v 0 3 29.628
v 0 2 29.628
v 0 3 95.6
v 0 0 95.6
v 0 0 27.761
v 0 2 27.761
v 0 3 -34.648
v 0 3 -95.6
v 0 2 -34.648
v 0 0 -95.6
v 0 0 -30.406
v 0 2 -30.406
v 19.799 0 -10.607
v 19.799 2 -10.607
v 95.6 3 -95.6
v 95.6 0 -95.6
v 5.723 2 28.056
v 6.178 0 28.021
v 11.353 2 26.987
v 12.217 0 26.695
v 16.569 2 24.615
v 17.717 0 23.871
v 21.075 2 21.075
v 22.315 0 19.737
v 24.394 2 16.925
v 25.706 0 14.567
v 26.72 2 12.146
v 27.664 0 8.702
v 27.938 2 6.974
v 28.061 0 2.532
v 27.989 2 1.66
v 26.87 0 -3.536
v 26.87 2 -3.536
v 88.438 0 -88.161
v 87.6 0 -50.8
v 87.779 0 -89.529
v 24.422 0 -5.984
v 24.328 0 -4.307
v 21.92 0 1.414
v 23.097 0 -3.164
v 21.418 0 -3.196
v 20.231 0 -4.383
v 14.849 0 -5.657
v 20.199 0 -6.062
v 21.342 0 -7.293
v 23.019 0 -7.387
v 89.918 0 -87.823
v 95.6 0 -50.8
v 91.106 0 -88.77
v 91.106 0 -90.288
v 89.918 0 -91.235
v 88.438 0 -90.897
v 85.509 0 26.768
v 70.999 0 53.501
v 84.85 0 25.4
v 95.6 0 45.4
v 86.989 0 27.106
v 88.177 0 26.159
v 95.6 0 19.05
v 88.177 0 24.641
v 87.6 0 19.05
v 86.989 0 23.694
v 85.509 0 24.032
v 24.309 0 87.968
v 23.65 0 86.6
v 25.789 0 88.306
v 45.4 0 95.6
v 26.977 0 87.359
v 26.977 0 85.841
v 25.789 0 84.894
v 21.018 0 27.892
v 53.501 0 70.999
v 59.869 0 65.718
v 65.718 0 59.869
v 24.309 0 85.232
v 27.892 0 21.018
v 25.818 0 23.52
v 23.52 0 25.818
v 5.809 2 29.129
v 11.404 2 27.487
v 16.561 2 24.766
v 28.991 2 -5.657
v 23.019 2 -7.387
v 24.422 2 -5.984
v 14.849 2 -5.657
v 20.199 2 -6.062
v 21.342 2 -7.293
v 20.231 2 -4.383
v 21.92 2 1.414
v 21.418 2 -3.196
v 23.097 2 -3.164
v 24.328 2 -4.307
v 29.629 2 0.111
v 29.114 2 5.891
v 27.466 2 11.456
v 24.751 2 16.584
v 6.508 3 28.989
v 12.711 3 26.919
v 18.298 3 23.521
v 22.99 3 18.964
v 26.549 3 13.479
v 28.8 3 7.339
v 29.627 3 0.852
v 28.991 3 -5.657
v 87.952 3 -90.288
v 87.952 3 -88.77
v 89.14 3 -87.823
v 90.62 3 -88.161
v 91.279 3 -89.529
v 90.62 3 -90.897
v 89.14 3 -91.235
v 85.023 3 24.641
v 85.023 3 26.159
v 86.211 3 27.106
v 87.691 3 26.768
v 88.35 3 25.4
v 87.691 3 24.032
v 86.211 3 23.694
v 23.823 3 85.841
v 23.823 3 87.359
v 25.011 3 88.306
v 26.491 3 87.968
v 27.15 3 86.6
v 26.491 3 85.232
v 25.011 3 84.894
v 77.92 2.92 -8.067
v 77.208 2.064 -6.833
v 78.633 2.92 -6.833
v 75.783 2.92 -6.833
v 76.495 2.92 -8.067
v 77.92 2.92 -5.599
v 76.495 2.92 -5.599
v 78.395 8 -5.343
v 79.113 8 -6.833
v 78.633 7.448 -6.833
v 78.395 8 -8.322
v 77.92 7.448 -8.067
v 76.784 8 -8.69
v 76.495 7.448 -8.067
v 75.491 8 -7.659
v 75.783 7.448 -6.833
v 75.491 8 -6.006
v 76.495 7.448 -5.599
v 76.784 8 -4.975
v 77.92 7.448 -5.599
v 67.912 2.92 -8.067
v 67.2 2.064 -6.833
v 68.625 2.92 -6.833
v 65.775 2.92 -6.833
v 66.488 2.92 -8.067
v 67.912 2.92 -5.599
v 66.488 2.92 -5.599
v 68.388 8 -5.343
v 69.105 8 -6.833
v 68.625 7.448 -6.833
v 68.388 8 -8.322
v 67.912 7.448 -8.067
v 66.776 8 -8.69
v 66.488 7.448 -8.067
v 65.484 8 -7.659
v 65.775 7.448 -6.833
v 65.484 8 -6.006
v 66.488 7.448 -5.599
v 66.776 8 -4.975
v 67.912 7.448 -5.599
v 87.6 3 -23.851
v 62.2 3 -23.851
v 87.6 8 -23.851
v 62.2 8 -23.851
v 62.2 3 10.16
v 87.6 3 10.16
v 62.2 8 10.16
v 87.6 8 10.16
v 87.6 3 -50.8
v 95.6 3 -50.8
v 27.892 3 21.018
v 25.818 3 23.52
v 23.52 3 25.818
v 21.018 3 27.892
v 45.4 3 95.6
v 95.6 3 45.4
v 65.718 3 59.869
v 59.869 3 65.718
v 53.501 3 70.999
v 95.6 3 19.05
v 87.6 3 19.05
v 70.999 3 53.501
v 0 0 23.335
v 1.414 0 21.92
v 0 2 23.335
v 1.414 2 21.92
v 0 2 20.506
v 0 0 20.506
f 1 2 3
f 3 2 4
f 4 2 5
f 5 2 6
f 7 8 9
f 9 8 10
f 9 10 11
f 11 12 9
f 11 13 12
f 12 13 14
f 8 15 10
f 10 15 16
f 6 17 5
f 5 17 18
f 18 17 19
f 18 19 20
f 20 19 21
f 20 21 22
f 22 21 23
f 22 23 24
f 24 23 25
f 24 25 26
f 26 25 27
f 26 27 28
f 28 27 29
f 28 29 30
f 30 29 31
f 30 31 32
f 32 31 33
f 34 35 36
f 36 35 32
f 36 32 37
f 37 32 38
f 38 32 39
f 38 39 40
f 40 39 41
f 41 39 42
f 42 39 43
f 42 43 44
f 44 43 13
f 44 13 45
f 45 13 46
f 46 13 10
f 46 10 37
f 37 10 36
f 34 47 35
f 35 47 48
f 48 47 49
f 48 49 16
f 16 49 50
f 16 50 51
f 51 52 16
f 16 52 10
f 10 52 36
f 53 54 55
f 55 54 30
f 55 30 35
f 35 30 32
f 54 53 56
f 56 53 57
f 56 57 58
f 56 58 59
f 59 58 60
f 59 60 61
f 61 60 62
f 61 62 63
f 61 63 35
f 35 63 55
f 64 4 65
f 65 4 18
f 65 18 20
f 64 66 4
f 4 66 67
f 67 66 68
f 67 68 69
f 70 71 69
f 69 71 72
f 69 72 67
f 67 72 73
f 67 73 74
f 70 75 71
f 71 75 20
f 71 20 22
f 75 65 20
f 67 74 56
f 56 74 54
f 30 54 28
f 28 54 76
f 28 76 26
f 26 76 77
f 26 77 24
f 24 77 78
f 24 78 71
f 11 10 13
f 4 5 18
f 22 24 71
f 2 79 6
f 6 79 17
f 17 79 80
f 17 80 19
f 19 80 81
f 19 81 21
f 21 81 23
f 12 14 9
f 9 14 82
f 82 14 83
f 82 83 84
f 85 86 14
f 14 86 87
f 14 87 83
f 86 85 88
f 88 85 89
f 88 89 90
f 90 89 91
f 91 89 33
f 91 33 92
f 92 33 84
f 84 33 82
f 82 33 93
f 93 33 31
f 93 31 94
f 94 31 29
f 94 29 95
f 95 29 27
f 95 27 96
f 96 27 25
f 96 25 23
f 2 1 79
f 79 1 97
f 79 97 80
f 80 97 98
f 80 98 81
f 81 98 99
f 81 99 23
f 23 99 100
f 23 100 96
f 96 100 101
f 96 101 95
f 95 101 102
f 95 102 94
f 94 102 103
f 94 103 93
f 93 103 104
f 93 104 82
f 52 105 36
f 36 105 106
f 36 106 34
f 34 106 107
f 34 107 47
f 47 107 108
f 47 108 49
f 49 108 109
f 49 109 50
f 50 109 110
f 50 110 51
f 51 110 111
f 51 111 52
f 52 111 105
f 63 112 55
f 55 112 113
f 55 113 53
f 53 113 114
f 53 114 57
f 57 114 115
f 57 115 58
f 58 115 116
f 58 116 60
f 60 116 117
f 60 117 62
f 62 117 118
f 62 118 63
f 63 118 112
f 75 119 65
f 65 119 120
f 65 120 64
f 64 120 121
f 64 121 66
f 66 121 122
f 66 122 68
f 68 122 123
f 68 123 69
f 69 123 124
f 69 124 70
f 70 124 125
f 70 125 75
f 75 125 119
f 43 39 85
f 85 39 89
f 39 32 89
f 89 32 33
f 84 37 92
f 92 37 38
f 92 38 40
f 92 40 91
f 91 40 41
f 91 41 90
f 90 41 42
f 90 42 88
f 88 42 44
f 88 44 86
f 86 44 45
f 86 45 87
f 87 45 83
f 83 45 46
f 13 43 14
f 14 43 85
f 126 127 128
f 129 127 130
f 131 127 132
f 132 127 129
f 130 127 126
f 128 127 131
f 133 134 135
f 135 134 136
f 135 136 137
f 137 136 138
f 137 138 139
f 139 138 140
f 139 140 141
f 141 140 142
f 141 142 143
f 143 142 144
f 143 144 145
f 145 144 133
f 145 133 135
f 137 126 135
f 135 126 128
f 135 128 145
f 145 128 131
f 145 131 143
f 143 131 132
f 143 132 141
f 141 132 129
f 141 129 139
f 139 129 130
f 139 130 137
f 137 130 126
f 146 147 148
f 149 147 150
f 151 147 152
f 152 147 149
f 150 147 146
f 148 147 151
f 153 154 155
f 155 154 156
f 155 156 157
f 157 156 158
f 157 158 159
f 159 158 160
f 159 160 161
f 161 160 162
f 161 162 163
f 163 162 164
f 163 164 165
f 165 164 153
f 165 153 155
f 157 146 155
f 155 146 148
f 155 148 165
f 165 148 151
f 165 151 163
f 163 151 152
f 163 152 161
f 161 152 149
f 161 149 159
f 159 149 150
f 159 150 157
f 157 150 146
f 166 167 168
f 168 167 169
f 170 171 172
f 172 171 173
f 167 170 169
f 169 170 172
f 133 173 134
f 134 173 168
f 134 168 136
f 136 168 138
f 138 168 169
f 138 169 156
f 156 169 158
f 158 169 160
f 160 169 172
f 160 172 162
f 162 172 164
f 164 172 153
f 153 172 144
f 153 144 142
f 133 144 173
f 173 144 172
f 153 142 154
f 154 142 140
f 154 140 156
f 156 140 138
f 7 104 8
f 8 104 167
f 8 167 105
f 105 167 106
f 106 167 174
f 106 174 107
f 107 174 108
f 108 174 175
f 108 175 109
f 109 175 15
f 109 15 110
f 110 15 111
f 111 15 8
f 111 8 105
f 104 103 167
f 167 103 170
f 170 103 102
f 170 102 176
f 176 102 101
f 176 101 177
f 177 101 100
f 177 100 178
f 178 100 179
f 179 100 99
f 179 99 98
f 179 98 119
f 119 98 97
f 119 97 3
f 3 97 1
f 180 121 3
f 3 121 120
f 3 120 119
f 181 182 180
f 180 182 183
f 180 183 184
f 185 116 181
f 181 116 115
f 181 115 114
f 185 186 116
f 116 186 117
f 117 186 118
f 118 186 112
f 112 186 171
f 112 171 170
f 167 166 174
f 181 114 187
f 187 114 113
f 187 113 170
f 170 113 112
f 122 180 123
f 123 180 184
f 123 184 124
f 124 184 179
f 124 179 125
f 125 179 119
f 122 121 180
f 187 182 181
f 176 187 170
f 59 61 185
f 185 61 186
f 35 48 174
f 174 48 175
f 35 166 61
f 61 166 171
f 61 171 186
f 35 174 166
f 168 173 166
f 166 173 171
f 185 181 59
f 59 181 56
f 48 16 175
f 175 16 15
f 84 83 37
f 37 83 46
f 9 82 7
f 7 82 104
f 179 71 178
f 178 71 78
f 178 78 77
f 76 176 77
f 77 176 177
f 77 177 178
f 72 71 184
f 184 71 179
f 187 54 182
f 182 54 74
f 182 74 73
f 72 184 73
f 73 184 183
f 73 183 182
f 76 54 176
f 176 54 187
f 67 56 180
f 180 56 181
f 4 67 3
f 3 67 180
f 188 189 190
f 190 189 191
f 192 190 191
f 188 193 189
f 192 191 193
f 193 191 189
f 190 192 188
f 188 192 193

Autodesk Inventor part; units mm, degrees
ref_plane "YZ Plane" through (0, 0, 0) normal (1, 0, 0) x (0, 1, 0)
ref_plane "XZ Plane" through (0, 0, 0) normal (0, 1, 0) x (-1, 0, 0)
sketch "Sketch1" plane through (0, 0, 0) normal (0, 1, 0) x (-1, 0, 0)
  line L0 (101.6, -101.6) -> (-101.6, -101.6)
  line L1 (-101.6, -101.6) -> (-101.6, 101.6)
  line L2 (-101.6, 101.6) -> (101.6, 101.6)
  line L3 (101.6, 101.6) -> (101.6, -101.6)
  line L4 (96.6, -96.6) -> (-96.6, -96.6)
  line L5 (-96.6, -96.6) -> (-96.6, 96.6)
  line L6 (-96.6, 96.6) -> (96.6, 96.6)
  line L7 (96.6, 96.6) -> (96.6, -96.6)
  line L8 (101.6, 101.6) -> (-40.4, 101.6)
  circle A0 centre (0, 0) radius 88.9
  line L9 (-40.4, 101.6) -> (-101.6, 40.4)
  line L10 (-45.4, 101.6) -> (-101.6, 45.4)
  line L11 (96.6, 96.6) -> (96.6, 101.6)
  line L12 (-45.4, 101.6) -> (-35.4, 101.6)
  line L13 (-35.4, 101.6) -> (-35.4, 96.6)
  line L14 (-35.4, 96.6) -> (-45.4, 96.6)
  line L15 (-45.4, 96.6) -> (-45.4, 101.6)
  line L16 (-101.6, 39.4) -> (-39.4, 101.6)
  line L17 (95.6, -95.6) -> (-95.6, -95.6)
  line L18 (-95.6, -95.6) -> (-95.6, 95.6)
  line L19 (-95.6, 95.6) -> (95.6, 95.6)
  line L20 (95.6, 95.6) -> (95.6, -95.6)
  point P0 (96.6, 51.2168)
  point P1 (101.6, 40.4)
  point P2 (101.6, -40.4)
  point P3 (96.6, -51.2168)
  point P4 (-96.6, 45.4)
  point P5 (-45.4, 96.6)
  point P6 (-45.4, 95.6)
  point P7 (-95.6, 45.4)
  dimension "d0" = 203.2
  dimension "d1" = 203.2
  dimension "d2" = 101.6
  dimension "d3" = 101.6
  dimension "d4" = 5
  dimension "d5" = 5
  dimension "d6" = 5
  dimension "d7" = 5
  dimension "d8" = 142
  dimension "d9" = 61.2
  dimension "d10" = 177.8
  dimension "d11" = 5
  dimension "d12" = 5
  dimension "d13" = 10
  dimension "d14" = 1
  dimension "d15" = 1
  dimension "d16" = 1
  dimension "d17" = 1
  dimension "d18" = 1
extrude "Extrusion1" add sketch "Sketch1" along normal blind 3 contours L16 L19 L20 L17 L18 | A0
sketch "Sketch2" plane through (0, 3, 0) normal (0, 1, 0) x (1, 0, 0)
  circle A0 centre (0, 0) radius 34.925
  circle A1 centre (0, 0) radius 88.9
  line L0 (0, 0) -> (53.5014, -70.9987)
  line L1 (0, 0) -> (70.9987, -53.5014)
  line L2 (45.4, -95.6) -> (95.6, -45.4) projected
  line L3 (70.5, -70.5) -> (0, 0)
  point P0 (21.0184, -27.8923)
  point P1 (27.8923, -21.0184)
  dimension "d21" = 69.85
  dimension "d22" = 177.8
  dimension "d23" = 8
  dimension "d24" = 8
extrude "Extrusion2" cut sketch "Sketch2" against normal blind 5 contours A0 L3 A1 L0 | L1 A1 L3 A0
sketch "Sketch3" plane through (0, 3, 0) normal (0, 1, 0) x (1, 0, 0)
  circle A0 centre (0, 0) radius 2.5
  line L0 (11.3314, 2.139) -> (-2.139, -11.3314)
  line L1 (0, 0) -> (-5.6569, 5.6569)
  line L2 (-5.6569, -14.8492) -> (-26.163, 5.6569)
  line L3 (-5.6569, 26.163) -> (14.8492, 5.6569)
  circle A1 centre (-5.6569, 5.6569) radius 14
  line L4 (-26.163, 5.6569) -> (-5.6569, 26.163)
  line L5 (14.8492, 5.6569) -> (-5.6569, -14.8492)
  line L6 (-40.3051, 5.6569) -> (-5.6569, 40.3051)
  line L7 (-5.6569, 40.3051) -> (28.9914, 5.6569)
  line L8 (28.9914, 5.6569) -> (-5.6569, -28.9914)
  line L9 (-5.6569, -28.9914) -> (-40.3051, 5.6569)
  line L10 (-22.6451, 9.1747) -> (-9.1747, 22.6451)
  line L11 (-9.1747, 22.6451) -> (-12.7668, 26.2372)
  line L12 (-12.7668, 26.2372) -> (-26.2372, 12.7668)
  line L13 (-26.2372, 12.7668) -> (-22.6451, 9.1747)
  line L14 (-36.0624, 5.6569) -> (-5.6569, 36.0624)
  line L15 (-5.6569, 36.0624) -> (26.8701, 3.5355)
  line L16 (26.8701, 3.5355) -> (-3.5355, -26.8701)
  line L17 (-3.5355, -26.8701) -> (-36.0624, 5.6569)
  arc A2 (-5.6569, -28.9914) -> (28.9914, 5.6569) centre (0.4206, -0.4206) ccw
  dimension "d27" = 8
  dimension "d28" = 28
  dimension "d29" = 29
  dimension "d30" = 29
  dimension "d31" = 14.5
  dimension "d32" = 10
  dimension "d33" = 10
  dimension "d34" = 10
  dimension "d35" = 10
  dimension "d36" = 5.08
  dimension "d37" = 9.525
  dimension "d38" = 9.525
  dimension "d39" = 3
  dimension "d40" = 3
  dimension "d41" = 0
  dimension "d42" = 3
  dimension "d51" = 29.21
extrude "Extrusion3" cut sketch "Sketch3" against normal blind 1 contours A0 | L0 L5 L2 L4 L3 | L4 L13 L12 L11 | A1 | L6 L7 L8 L15 L14 L17 L9 | L8 A2 | L17 L14 L15 L8
sketch "Sketch4" plane through (0, 2, 0) normal (0, 1, 0) x (1, 0, 0)
  line L0 (-36.0624, 5.6569) -> (-5.6569, 36.0624)
  line L1 (-5.6569, 36.0624) -> (26.8701, 3.5355)
  line L2 (26.8701, 3.5355) -> (-3.5355, -26.8701)
  line L3 (-3.5355, -26.8701) -> (-36.0624, 5.6569)
  line L4 (-5.6569, 40.3051) -> (28.9914, 5.6569) projected
  line L5 (-40.3051, 5.6569) -> (-5.6569, 40.3051) projected
  line L6 (-5.6569, -28.9914) -> (-40.3051, 5.6569) projected
  line L7 (28.9914, 5.6569) -> (-5.6569, -28.9914) projected
  arc A0 (-3.5355, -26.8701) -> (26.8701, 3.5355) centre (4.0877, -4.0877) ccw
  point P0 (0, 0)
  dimension "d45" = 3
  dimension "d46" = 3
  dimension "d47" = 3
  dimension "d48" = 0
extrude "Extrusion4" cut sketch "Sketch4" against normal blind 5 contours L0 L1 L2 L3 | L2 A0
sketch "Sketch6" plane through (0, 3, 0) normal (0, 1, 0) x (1, 0, 0)
  line L0 (95.6, 95.6) -> (-95.6, 95.6) projected
  line L1 (95.6, 95.6) -> (87.6, 95.6)
  line L2 (87.6, 95.6) -> (87.6, -46.4)
  line L3 (87.6, -46.4) -> (95.6, -46.4)
  line L4 (95.6, -46.4) -> (95.6, 95.6)
  line L5 (95.6, -45.4) -> (95.6, 95.6) projected
  line L6 (87.6, -19.05) -> (95.6, -19.05)
  line L7 (95.6, -19.05) -> (95.6, 50.8)
  line L8 (95.6, 50.8) -> (87.6, 50.8)
  line L9 (87.6, 50.8) -> (87.6, -19.05)
  line L10 (0, 0) -> (95.6, 0)
  point P0 (95.6, -19.05)
  dimension "d58" = 8
  dimension "d59" = 142
  dimension "d62" = 50.8
  dimension "d63" = 19.05
extrude "Extrusion6" cut sketch "Sketch6" against normal blind 25.4 contours L4 L10 L2 L8 | L4 L6 L2 L10
sketch "Sketch7" plane through (0, 3, 0) normal (0, 1, 0) x (1, 0, 0)
  line L0 (-95.6, 95.6) -> (-95.6, -95.6) projected
  line L1 (-95.6, -95.6) -> (45.4, -95.6) projected
  line L2 (95.6, 50.8) -> (87.6, 50.8) projected
  line L3 (87.6, 50.8) -> (62.2, 50.8)
  line L4 (87.6, -19.05) -> (87.6, 50.8)
  line L5 (87.6, -19.05) -> (87.6, 50.8) projected
  line L6 (87.6, 50.8) -> (95.6, 50.8) projected
  line L7 (87.6, 50.8) -> (62.2, 50.8)
  line L8 (62.2, 50.8) -> (62.2, -10.16)
  line L9 (62.2, -10.16) -> (87.6, -10.16)
  line L10 (87.6, -10.16) -> (87.6, 50.8)
  line L11 (62.2, 23.8506) -> (87.6, 23.8506)
  point P0 (0, 0)
  dimension "d72" = 60.96
  dimension "d90" = 34.0106
extrude "Extrusion7" add sketch "Sketch7" along normal blind 5 contours L4 L9 L8 L11
sketch "Sketch8" plane through (0, 8, 0) normal (0, 1, 0) x (1, 0, 0)
  line L0 (62.2, -10.16) -> (87.6, -10.16) projected
  line L1 (62.2, -10.16) -> (87.6, -10.16)
  line L2 (87.6, -10.16) -> (87.6, 6.8326)
  line L3 (87.6, 50.8) -> (87.6, -19.05) projected
  line L4 (87.6, 6.8326) -> (62.2, 6.8326)
  circle A0 centre (77.2076, 6.8326) radius 1.5
  circle A1 centre (67.2, 6.8326) radius 1.5
  line L5 (62.2, 23.8506) -> (62.2, -10.16) projected
  point P0 (0, 0)
  dimension "d78" = 16.9926
  dimension "d79" = 3
  dimension "d80" = 3
  dimension "d139" = 5
  dimension "d140" = 10.0076
hole "Hole1" at (77.2076, 8, -6.8326) at (67.2, 8, -6.8326) direction (0, -1, 0) diameter 2.85 depth 5.08 tip angle 118 countersink diameter 3.81 countersink angle 82 thread size "M3.5x0.6" class "6H" standard "ANSI Metric M Profile"
sketch "Sketch9" plane through (0, 2, 0) normal (0, 1, 0) x (1, 0, 0)
  point P0 (0, 0)
sketch "Sketch10" plane through (0, 2, 0) normal (0, 1, 0) x (1, 0, 0)
  circle A0 centre (6.7129, 18.0166) radius 2
  circle A1 centre (-18.0312, -6.7275) radius 2
  circle A2 centre (-18.0312, -6.7275) radius 2
  circle A3 centre (-5.6569, 5.6469) radius 14
  circle A4 centre (0, -0.01) radius 2.5
  circle A5 centre (22.2964, 5.2615) radius 2.2448
  circle A6 centre (-5.2761, -22.3111) radius 2.3104
  circle A7 centre (-33.9469, 6.3598) radius 2.2008
  circle A8 centre (-6.3744, 33.9323) radius 2.3894
  line L0 (-5.6569, 40.3051) -> (28.9914, 5.6569) projected
  line L1 (-5.6569, 40.3051) -> (1.4142, 33.234)
  line L2 (-5.6569, 26.163) -> (1.4142, 33.234)
  line L3 (-5.6569, 26.163) -> (-12.7279, 33.234)
  line L4 (-40.3051, 5.6569) -> (-5.6569, 40.3051) projected
  line L5 (-5.6569, 40.3051) -> (-40.3051, 5.6569)
  line L6 (-5.6569, 26.163) -> (-33.234, -1.4142)
  line L7 (-5.6569, -28.9914) -> (-40.3051, 5.6569) projected
  line L8 (-33.234, 12.7279) -> (-26.163, 5.6569)
  arc A9 (-5.6569, -28.9914) -> (21.0752, -21.0752) centre (0.4206, -0.4206) ccw projected
  line L9 (-5.6569, -28.9914) -> (28.9914, 5.6569)
  line L10 (-5.6569, 36.0624) -> (26.8701, 3.5355) projected
  line L11 (-12.7279, -21.9203) -> (21.9203, 12.7279)
  line L12 (-5.6569, -14.8492) -> (1.4142, -21.9203)
  line L13 (14.8492, 5.6569) -> (21.9203, -1.4142)
  point P0 (0, 0)
  point P1 (0.0071, -0.017)
  point P2 (24.4219, 5.9837)
  point P3 (23.0187, 7.3869)
  point P4 (19.799, 10.6066)
  dimension "d91" = 34.9934
  dimension "d92" = 28
  dimension "d93" = 8
  dimension "d94" = 10
  dimension "d95" = 10
  dimension "d96" = 10
  dimension "d97" = 10
  dimension "d98" = 10
extrude "Extrusion8" add sketch "Sketch10" against normal up to surface (2 mm away) contours A5 L10 L9 L13 L11 | L2 L3 L4 L0 | L9 L7 L11 L12 | L6 L7 L4 L8
sketch "Sketch11" plane through (0, 3, 0) normal (0, 1, 0) x (1, 0, 0)
  circle A0 centre (6.7129, 18.0166) radius 2
  circle A1 centre (-18.0312, -6.7275) radius 2
  circle A2 centre (-18.0312, -6.7275) radius 2
  circle A3 centre (-5.6569, 5.6469) radius 14
  circle A4 centre (0, -0.01) radius 2.5
  circle A5 centre (22.2964, 5.2615) radius 2.2448
  circle A6 centre (-5.2761, -22.3111) radius 2.3104
  circle A7 centre (-33.9469, 6.3598) radius 2.2008
  circle A8 centre (-6.3744, 33.9323) radius 2.3894
  line L0 (-5.6569, 40.3051) -> (28.9914, 5.6569)
  line L1 (-5.6569, 40.3051) -> (1.4142, 33.234)
  line L2 (-5.6569, 26.163) -> (1.4142, 33.234)
  line L3 (-5.6569, 26.163) -> (-12.7279, 33.234)
  line L4 (-40.3051, 5.6569) -> (-5.6569, 40.3051)
  line L5 (-5.6569, 40.3051) -> (-40.3051, 5.6569)
  line L6 (-5.6569, 26.163) -> (-33.234, -1.4142)
  line L7 (-5.6569, -28.9914) -> (-40.3051, 5.6569)
  line L8 (-33.234, 12.7279) -> (-26.163, 5.6569)
  arc A9 (-5.6569, -28.9914) -> (21.0752, -21.0752) centre (0.4206, -0.4206) ccw
  line L9 (-5.6569, -28.9914) -> (28.9914, 5.6569)
  line L10 (-5.6569, 36.0624) -> (26.8701, 3.5355)
  line L11 (-12.7279, -21.9203) -> (21.9203, 12.7279)
  line L12 (-5.6569, -14.8492) -> (1.4142, -21.9203)
  line L13 (14.8492, 5.6569) -> (21.9203, -1.4142)
  point P0 (0, 0)
  point P1 (0, 0)
  point P2 (0.0071, -0.017)
  point P3 (24.4219, 5.9837)
  point P4 (23.0187, 7.3869)
  point P5 (19.799, 10.6066)
  point P6 (24.4219, 5.9837)
  point P7 (23.0187, 7.3869)
  dimension "d101" = 34.9934
  dimension "d102" = 28
  dimension "d103" = 8
  dimension "d104" = 10
  dimension "d105" = 10
  dimension "d106" = 10
  dimension "d107" = 10
  dimension "d108" = 10
extrude "Extrusion9" cut sketch "Sketch11" against normal blind 10 contours A5 L10 | A8 | A6 | A7 picked at (21.4653, 4.9881)
sketch "Sketch12" plane through (0, 3, 0) normal (0, 1, 0) x (1, 0, 0)
  line L0 (95.6, 50.8) -> (95.6, 95.6) projected
  line L1 (-95.6, -95.6) -> (45.4, -95.6) projected
  line L2 (95.6, 95.6) -> (-95.6, -95.6)
  line L3 (95.6, 95.6) -> (-95.6, 95.6) projected
  line L4 (0, 95.6) -> (0, -95.6)
  line L5 (-95.6, -95.6) -> (45.4, -95.6) projected
  point P0 (0, 0)
ref_plane "Work Plane2" through (0, 3, -95.6) normal (-1, 0, 0) x (0, 0, 1)
sketch "Sketch15" plane through (0, 3, 0) normal (0, 1, 0) x (1, 0, 0)
  line L0 (-96.6, 96.6) -> (-96.6, -96.6)
  line L1 (96.6, 96.6) -> (-96.6, 96.6)
  line L2 (-96.6, 96.6) -> (96.6, 96.6)
  line L3 (96.6, -45.4) -> (45.4, -96.6)
  line L4 (96.6, 96.6) -> (96.6, -45.4)
  line L5 (96.6, -45.4) -> (45.4, -96.6)
  line L6 (45.4, -96.6) -> (-96.6, -96.6)
  line L7 (-96.6, -96.6) -> (-96.6, 96.6)
  line L8 (-96.6, 96.6) -> (-89.5289, 89.5289)
  circle A0 centre (-89.5289, 89.5289) radius 5
  circle A1 centre (-89.5289, 89.5289) radius 1.5
  line L9 (-89.5289, 84.5289) -> (-96.6, 84.5289)
  line L10 (-89.5289, 89.5289) -> (-89.5289, 84.5289)
  line L11 (-89.5289, 89.5289) -> (-84.5289, 89.5289)
  line L12 (-84.5289, 96.6) -> (-84.5289, 89.5289)
  line L13 (-96.6, -96.6) -> (-89.5289, -89.5289)
  line L14 (-96.6, -96.6) -> (-86.6, -96.6) construction
  circle A2 centre (-89.5289, -89.5289) radius 5
  circle A3 centre (-89.5289, -89.5289) radius 1.75
  line L15 (-89.5289, -89.5289) -> (-84.5289, -89.5289)
  line L16 (-84.5289, -96.6) -> (-84.5289, -89.5289)
  line L17 (-89.5289, -89.5289) -> (-89.5289, -84.5289)
  line L18 (-96.6, -84.5289) -> (-89.5289, -84.5289)
  line L19 (96.6, 96.6) -> (89.5289, 89.5289)
  circle A4 centre (89.5289, 89.5289) radius 5
  circle A5 centre (89.5289, 89.5289) radius 1.75
  line L20 (89.5289, 89.5289) -> (84.5289, 89.5289)
  line L21 (84.5289, 96.6) -> (84.5289, 89.5289)
  line L22 (89.5289, 89.5289) -> (89.5289, 84.5289)
  line L23 (96.6, 84.5289) -> (89.5289, 84.5289)
  line L24 (96.6, -43.114) -> (96.6, 96.6)
  line L25 (-96.6, -96.6) -> (43.1178, -96.6)
  line L26 (28.9914, 5.6569) -> (-5.6569, -28.9914)
  line L27 (25.4, -25.4) -> (101.6, -25.4)
  line L28 (101.6, -88.9) -> (101.6, 101.6)
  line L29 (25.4, -25.4) -> (25.4, -101.6)
  line L30 (43.1178, -101.6) -> (-101.6, -101.6)
  line L31 (96.6, -25.4) -> (86.6, -25.4)
  circle A6 centre (86.6, -25.4) radius 5
  circle A7 centre (86.6, -25.4) radius 1.75
  line L32 (25.4, -96.6) -> (25.4, -86.6)
  circle A8 centre (25.4, -86.6) radius 5
  circle A9 centre (25.4, -86.6) radius 1.75
  point P0 (0, 0)
  point P1 (0, 0)
  dimension "d117" = 10
  dimension "d118" = 3
  dimension "d119" = 10
  dimension "d120" = 45
  dimension "d121" = 10
  dimension "d122" = 3.5
  dimension "d123" = 10
  dimension "d124" = 10
  dimension "d125" = 3.5
  dimension "d126" = 76.2
  dimension "d127" = 76.2
  dimension "d128" = 10
  dimension "d129" = 10
  dimension "d130" = 3.5
  dimension "d131" = 10
  dimension "d132" = 10
  dimension "d133" = 3.5
extrude "Extrusion12" cut sketch "Sketch15" against normal blind 25.4 contours A1 L11 L8 | L8 L10 A1 | L10 L11 A1 | L17 L13 A3 | A3 L15 L17 | L20 L22 A5 | A5 L19 L20 | L13 L15 A3 | A5 L22 L19 | A9 L29 | L29 A9 | A7 L27 | L27 A7
sketch "Sketch17" plane through (0, 3, -95.6) normal (-1, 0, 0) x (0, 0, 1)
  line L0 (225.7063, 44.2174) -> (-31.7491, 44.2174)
  line L1 (-31.7491, 44.2174) -> (-31.7491, -27.1257)
  line L2 (-31.7491, -27.1257) -> (225.7063, -27.1257)
  line L3 (225.7063, -27.1257) -> (225.7063, 44.2174)
  point P0 (95.6, -3)
extrude "Extrusion14" cut sketch "Sketch17" along normal through all
equation "\"d1\" = d0"
equation "\"d2\" = 0.5 * d0"
equation "\"d3\" = 0.5 * d0"
properties part number "Drop_Plate"
